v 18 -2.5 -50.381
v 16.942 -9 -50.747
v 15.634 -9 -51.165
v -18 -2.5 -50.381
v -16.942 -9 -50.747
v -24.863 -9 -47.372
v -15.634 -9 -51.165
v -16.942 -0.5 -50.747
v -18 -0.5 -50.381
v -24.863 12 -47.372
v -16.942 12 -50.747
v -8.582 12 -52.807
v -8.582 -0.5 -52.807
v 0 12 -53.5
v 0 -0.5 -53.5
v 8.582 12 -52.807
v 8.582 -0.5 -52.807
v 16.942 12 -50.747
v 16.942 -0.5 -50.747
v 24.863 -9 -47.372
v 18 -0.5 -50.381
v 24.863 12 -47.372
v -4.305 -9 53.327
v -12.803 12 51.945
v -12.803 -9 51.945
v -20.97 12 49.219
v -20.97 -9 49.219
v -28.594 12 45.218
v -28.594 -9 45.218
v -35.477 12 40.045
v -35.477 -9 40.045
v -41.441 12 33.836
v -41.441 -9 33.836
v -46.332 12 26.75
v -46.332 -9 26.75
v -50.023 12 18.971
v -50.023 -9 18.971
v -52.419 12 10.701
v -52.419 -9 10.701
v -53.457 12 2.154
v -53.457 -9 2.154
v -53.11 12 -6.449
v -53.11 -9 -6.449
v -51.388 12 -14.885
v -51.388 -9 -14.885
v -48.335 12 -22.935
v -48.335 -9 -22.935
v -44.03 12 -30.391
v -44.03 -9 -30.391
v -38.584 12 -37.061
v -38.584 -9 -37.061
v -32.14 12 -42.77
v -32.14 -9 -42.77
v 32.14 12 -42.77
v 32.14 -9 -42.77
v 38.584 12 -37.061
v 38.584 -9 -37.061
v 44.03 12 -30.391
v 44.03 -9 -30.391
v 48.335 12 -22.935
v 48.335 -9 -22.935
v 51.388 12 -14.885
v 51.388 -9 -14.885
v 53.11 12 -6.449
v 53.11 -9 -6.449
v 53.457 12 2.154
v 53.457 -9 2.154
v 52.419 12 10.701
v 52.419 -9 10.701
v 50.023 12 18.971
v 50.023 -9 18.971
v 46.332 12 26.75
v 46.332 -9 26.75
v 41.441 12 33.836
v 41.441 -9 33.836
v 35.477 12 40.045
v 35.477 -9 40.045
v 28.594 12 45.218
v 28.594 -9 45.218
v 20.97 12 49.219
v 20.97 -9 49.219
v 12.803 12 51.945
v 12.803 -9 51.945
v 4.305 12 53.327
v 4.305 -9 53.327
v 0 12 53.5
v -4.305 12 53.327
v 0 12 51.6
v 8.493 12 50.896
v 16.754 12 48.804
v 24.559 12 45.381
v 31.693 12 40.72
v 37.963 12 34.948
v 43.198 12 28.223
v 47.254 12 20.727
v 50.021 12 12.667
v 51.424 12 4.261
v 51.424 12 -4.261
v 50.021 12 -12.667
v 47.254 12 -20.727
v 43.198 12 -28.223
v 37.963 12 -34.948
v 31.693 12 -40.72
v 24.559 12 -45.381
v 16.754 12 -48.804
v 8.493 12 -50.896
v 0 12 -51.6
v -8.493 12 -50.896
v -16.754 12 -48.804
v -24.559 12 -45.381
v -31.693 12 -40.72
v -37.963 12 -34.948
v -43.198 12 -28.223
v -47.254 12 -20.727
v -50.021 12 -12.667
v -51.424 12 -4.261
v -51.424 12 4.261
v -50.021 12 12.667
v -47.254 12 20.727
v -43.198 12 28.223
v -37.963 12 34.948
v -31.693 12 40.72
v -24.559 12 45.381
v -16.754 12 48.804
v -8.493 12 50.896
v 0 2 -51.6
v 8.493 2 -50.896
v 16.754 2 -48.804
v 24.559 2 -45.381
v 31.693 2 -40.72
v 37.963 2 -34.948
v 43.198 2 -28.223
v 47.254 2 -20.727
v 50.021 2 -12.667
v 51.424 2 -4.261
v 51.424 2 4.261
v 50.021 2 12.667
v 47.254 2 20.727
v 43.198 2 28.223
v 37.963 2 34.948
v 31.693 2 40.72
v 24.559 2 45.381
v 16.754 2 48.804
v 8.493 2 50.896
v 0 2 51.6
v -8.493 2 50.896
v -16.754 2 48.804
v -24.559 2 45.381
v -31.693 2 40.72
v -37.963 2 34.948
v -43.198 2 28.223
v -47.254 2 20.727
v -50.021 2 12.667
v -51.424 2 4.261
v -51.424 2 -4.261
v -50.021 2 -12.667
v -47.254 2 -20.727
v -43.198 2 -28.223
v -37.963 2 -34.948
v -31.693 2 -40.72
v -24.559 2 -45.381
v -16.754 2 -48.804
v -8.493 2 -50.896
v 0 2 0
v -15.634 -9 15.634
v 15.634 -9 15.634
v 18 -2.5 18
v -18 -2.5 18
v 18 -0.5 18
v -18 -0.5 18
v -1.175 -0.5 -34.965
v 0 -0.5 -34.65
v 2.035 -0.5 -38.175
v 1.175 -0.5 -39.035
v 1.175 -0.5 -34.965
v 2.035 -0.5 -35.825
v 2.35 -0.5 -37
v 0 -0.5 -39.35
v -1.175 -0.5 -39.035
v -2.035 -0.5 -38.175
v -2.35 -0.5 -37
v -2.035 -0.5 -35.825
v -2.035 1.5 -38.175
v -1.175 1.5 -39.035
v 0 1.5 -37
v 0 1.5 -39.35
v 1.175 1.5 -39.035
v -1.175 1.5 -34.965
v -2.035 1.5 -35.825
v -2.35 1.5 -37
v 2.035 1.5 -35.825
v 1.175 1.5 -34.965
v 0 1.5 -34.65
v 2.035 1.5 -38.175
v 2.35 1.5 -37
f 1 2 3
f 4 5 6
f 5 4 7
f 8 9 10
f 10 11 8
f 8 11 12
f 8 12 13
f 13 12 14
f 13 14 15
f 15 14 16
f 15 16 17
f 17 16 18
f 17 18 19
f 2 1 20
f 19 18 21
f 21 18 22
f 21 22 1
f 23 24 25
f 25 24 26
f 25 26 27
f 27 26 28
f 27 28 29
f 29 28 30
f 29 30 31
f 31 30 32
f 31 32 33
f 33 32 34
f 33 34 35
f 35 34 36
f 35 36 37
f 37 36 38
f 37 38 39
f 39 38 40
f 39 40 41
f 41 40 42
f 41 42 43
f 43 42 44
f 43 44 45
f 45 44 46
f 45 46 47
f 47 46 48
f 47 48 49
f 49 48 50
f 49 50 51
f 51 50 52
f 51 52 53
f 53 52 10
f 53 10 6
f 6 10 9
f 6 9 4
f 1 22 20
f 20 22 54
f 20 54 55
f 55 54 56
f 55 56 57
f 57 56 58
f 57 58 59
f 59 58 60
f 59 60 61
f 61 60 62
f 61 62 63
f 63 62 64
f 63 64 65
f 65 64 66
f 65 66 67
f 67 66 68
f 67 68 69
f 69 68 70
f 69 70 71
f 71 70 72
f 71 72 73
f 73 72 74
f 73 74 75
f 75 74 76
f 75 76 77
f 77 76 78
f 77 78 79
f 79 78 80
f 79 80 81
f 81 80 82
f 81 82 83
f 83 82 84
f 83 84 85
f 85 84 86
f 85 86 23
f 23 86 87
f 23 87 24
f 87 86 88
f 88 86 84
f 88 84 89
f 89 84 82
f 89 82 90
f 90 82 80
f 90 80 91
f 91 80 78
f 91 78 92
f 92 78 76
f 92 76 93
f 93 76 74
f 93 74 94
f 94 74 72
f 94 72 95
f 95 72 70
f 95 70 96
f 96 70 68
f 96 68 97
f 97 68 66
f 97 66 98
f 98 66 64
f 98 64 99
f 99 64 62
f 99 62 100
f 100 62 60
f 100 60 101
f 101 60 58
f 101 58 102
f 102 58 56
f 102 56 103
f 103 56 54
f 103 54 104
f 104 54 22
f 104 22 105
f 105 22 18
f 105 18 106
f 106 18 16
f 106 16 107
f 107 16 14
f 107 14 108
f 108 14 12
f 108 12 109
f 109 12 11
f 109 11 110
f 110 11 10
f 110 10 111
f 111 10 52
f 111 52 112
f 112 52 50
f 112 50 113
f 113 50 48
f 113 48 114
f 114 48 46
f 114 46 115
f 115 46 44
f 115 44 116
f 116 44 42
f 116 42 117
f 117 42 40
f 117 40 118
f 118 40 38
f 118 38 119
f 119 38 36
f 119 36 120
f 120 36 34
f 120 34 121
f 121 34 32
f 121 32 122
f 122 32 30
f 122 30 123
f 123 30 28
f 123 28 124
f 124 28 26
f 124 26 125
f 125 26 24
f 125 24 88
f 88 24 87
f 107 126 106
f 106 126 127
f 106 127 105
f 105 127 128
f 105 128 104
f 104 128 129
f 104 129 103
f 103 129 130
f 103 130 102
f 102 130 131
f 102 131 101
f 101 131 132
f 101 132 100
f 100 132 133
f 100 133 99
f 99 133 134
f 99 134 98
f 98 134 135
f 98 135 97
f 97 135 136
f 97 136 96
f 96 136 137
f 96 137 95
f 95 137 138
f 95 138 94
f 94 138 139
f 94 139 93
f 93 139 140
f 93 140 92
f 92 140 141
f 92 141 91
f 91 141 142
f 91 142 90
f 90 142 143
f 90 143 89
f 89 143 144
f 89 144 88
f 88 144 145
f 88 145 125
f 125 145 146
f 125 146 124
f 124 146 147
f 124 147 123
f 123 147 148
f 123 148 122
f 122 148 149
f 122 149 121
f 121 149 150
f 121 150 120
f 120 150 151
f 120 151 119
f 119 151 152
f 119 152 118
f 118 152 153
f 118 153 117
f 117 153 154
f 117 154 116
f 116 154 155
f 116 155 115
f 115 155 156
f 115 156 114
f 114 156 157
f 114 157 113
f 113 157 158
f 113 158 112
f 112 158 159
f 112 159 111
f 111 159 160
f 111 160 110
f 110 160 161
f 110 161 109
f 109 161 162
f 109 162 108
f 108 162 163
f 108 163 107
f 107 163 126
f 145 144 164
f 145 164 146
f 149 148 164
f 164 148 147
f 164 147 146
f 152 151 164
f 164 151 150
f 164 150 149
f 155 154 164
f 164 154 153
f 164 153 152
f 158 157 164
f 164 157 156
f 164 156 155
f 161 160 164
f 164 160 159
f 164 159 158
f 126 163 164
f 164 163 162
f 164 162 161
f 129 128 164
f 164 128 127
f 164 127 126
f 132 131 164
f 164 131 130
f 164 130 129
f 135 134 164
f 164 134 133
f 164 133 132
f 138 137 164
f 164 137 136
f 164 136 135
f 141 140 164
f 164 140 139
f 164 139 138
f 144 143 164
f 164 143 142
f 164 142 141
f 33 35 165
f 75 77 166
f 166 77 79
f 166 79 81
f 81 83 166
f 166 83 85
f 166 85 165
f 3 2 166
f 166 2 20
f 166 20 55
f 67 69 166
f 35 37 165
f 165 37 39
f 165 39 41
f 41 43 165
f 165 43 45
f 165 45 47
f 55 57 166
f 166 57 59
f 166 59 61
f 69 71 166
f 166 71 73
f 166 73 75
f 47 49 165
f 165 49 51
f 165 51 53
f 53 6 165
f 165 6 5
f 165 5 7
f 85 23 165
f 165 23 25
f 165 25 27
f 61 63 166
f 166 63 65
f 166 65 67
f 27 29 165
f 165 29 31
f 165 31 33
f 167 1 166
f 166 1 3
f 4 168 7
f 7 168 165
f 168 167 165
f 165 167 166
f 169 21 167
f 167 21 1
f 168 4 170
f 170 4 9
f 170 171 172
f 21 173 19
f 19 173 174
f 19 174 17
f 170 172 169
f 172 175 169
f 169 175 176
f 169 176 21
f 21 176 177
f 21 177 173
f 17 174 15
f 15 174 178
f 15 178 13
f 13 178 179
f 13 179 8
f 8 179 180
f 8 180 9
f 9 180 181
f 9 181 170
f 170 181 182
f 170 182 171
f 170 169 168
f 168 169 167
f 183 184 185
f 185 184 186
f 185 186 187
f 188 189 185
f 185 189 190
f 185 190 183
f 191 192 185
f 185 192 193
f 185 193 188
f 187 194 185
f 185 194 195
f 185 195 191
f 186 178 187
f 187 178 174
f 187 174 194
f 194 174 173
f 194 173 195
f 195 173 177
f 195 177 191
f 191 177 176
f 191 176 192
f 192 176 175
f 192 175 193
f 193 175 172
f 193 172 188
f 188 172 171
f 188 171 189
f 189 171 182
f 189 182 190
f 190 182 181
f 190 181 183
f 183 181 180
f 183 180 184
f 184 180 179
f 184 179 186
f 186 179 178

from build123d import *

# Parameters (mm, degrees)
SKETCH1_R            = 53.5
BOSS_EXTRUDE1_DEPTH  = 2
SKETCH2_R            = 53.5
SKETCH2_R_2          = 51.6
BOSS_EXTRUDE2_DEPTH  = 10
BOSS_EXTRUDE3_START  = 9
SKETCH4_R            = 53.5
BOSS_EXTRUDE3_DEPTH  = 9
SKETCH6_W            = 36
SKETCH6_H            = 36
CUT_EXTRUDE1_DEPTH   = 6.5
CUT_EXTRUDE2_START   = -36
CUT_EXTRUDE2_DEPTH   = 36
CUT_EXTRUDE2_2_DEPTH = 36
CUT_EXTRUDE2_START_2 = -19
CUT_EXTRUDE2_3_DEPTH = 38
SKETCH14_R           = 2.35
CUT_EXTRUDE3_DEPTH   = 4
SKETCH15_W           = 36
SKETCH15_H           = 71.5
CUT_EXTRUDE4_DEPTH   = 2


with BuildPart() as part:
    # Sketch1 → Boss-Extrude1 (new body)
    with BuildSketch(Plane(origin=(0, 0, 0), x_dir=(1, 0, 0), z_dir=(0, 1, 0))):
        with Locations(Location((0, 0, 0), (0, 0, 270))):
            Circle(SKETCH1_R)
    extrude(amount=BOSS_EXTRUDE1_DEPTH)

    # Sketch2 → Boss-Extrude2 (add)
    with BuildSketch(Plane(origin=(0, 2, 0), x_dir=(1, 0, 0), z_dir=(0, 1, 0))):
        with Locations(Location((0, 0, 0), (0, 0, 270))):
            Circle(SKETCH2_R)
        with Locations(Location((0, 0, 0), (0, 0, 270))):
            Circle(SKETCH2_R_2, mode=Mode.SUBTRACT)
    extrude(amount=BOSS_EXTRUDE2_DEPTH)

    # Sketch4 → Boss-Extrude3 (add)
    with BuildSketch(Plane.XZ.offset(BOSS_EXTRUDE3_START)):
        with Locations(Location((0, 0, 0), (0, 0, 270))):
            Circle(SKETCH4_R)
    extrude(amount=-BOSS_EXTRUDE3_DEPTH)

    # Sketch6 → Cut-Extrude1 (cut)
    with BuildSketch(Plane.XZ.offset(9)):
        Rectangle(SKETCH6_W, SKETCH6_H)
    extrude(amount=-CUT_EXTRUDE1_DEPTH, mode=Mode.SUBTRACT)

    # Cut-Extrude2: read off the stored shape, not the designer's step
    # Cut-Extrude2 outline → Cut-Extrude2 (cut)
    with BuildSketch(Plane.XY.offset(-18).offset(CUT_EXTRUDE2_START)):
        Polygon((15.634193477, -9), (18, -2.5), (-18, -2.5), (-15.634193477, -9), align=None)
    extrude(amount=CUT_EXTRUDE2_DEPTH, mode=Mode.SUBTRACT)

    # Cut-Extrude2 2 outline → Cut-Extrude2 2 (add)
    with BuildSketch(Plane.XY.offset(-18)):
        Polygon((18, -9), (18, -2.5), (15.634193477, -9), align=None)
        Polygon((-15.634193477, -9), (-18, -2.5), (-18, -9), align=None)
    extrude(amount=CUT_EXTRUDE2_2_DEPTH)

    # Cut-Extrude2 3 outline → Cut-Extrude2 3 (add)
    with BuildSketch(Plane.YZ.offset(CUT_EXTRUDE2_START_2)):
        Polygon((-9, 18), (-9, 15.634193477), (-2.5, 18), align=None)
    extrude(amount=CUT_EXTRUDE2_3_DEPTH)

    # Sketch14 → Cut-Extrude3 (cut)
    with BuildSketch(Plane.XZ.offset(2.5)):
        with Locations(Location((0, -37, 0), (0, 0, 270))):
            Circle(SKETCH14_R)
    extrude(amount=-CUT_EXTRUDE3_DEPTH, mode=Mode.SUBTRACT)

    # Sketch15 → Cut-Extrude4 (cut)
    with BuildSketch(Plane.XZ.offset(2.5)):
        with Locations((0, -17.75)):
            Rectangle(SKETCH15_W, SKETCH15_H)
    extrude(amount=-CUT_EXTRUDE4_DEPTH, mode=Mode.SUBTRACT)


solid = part.part
